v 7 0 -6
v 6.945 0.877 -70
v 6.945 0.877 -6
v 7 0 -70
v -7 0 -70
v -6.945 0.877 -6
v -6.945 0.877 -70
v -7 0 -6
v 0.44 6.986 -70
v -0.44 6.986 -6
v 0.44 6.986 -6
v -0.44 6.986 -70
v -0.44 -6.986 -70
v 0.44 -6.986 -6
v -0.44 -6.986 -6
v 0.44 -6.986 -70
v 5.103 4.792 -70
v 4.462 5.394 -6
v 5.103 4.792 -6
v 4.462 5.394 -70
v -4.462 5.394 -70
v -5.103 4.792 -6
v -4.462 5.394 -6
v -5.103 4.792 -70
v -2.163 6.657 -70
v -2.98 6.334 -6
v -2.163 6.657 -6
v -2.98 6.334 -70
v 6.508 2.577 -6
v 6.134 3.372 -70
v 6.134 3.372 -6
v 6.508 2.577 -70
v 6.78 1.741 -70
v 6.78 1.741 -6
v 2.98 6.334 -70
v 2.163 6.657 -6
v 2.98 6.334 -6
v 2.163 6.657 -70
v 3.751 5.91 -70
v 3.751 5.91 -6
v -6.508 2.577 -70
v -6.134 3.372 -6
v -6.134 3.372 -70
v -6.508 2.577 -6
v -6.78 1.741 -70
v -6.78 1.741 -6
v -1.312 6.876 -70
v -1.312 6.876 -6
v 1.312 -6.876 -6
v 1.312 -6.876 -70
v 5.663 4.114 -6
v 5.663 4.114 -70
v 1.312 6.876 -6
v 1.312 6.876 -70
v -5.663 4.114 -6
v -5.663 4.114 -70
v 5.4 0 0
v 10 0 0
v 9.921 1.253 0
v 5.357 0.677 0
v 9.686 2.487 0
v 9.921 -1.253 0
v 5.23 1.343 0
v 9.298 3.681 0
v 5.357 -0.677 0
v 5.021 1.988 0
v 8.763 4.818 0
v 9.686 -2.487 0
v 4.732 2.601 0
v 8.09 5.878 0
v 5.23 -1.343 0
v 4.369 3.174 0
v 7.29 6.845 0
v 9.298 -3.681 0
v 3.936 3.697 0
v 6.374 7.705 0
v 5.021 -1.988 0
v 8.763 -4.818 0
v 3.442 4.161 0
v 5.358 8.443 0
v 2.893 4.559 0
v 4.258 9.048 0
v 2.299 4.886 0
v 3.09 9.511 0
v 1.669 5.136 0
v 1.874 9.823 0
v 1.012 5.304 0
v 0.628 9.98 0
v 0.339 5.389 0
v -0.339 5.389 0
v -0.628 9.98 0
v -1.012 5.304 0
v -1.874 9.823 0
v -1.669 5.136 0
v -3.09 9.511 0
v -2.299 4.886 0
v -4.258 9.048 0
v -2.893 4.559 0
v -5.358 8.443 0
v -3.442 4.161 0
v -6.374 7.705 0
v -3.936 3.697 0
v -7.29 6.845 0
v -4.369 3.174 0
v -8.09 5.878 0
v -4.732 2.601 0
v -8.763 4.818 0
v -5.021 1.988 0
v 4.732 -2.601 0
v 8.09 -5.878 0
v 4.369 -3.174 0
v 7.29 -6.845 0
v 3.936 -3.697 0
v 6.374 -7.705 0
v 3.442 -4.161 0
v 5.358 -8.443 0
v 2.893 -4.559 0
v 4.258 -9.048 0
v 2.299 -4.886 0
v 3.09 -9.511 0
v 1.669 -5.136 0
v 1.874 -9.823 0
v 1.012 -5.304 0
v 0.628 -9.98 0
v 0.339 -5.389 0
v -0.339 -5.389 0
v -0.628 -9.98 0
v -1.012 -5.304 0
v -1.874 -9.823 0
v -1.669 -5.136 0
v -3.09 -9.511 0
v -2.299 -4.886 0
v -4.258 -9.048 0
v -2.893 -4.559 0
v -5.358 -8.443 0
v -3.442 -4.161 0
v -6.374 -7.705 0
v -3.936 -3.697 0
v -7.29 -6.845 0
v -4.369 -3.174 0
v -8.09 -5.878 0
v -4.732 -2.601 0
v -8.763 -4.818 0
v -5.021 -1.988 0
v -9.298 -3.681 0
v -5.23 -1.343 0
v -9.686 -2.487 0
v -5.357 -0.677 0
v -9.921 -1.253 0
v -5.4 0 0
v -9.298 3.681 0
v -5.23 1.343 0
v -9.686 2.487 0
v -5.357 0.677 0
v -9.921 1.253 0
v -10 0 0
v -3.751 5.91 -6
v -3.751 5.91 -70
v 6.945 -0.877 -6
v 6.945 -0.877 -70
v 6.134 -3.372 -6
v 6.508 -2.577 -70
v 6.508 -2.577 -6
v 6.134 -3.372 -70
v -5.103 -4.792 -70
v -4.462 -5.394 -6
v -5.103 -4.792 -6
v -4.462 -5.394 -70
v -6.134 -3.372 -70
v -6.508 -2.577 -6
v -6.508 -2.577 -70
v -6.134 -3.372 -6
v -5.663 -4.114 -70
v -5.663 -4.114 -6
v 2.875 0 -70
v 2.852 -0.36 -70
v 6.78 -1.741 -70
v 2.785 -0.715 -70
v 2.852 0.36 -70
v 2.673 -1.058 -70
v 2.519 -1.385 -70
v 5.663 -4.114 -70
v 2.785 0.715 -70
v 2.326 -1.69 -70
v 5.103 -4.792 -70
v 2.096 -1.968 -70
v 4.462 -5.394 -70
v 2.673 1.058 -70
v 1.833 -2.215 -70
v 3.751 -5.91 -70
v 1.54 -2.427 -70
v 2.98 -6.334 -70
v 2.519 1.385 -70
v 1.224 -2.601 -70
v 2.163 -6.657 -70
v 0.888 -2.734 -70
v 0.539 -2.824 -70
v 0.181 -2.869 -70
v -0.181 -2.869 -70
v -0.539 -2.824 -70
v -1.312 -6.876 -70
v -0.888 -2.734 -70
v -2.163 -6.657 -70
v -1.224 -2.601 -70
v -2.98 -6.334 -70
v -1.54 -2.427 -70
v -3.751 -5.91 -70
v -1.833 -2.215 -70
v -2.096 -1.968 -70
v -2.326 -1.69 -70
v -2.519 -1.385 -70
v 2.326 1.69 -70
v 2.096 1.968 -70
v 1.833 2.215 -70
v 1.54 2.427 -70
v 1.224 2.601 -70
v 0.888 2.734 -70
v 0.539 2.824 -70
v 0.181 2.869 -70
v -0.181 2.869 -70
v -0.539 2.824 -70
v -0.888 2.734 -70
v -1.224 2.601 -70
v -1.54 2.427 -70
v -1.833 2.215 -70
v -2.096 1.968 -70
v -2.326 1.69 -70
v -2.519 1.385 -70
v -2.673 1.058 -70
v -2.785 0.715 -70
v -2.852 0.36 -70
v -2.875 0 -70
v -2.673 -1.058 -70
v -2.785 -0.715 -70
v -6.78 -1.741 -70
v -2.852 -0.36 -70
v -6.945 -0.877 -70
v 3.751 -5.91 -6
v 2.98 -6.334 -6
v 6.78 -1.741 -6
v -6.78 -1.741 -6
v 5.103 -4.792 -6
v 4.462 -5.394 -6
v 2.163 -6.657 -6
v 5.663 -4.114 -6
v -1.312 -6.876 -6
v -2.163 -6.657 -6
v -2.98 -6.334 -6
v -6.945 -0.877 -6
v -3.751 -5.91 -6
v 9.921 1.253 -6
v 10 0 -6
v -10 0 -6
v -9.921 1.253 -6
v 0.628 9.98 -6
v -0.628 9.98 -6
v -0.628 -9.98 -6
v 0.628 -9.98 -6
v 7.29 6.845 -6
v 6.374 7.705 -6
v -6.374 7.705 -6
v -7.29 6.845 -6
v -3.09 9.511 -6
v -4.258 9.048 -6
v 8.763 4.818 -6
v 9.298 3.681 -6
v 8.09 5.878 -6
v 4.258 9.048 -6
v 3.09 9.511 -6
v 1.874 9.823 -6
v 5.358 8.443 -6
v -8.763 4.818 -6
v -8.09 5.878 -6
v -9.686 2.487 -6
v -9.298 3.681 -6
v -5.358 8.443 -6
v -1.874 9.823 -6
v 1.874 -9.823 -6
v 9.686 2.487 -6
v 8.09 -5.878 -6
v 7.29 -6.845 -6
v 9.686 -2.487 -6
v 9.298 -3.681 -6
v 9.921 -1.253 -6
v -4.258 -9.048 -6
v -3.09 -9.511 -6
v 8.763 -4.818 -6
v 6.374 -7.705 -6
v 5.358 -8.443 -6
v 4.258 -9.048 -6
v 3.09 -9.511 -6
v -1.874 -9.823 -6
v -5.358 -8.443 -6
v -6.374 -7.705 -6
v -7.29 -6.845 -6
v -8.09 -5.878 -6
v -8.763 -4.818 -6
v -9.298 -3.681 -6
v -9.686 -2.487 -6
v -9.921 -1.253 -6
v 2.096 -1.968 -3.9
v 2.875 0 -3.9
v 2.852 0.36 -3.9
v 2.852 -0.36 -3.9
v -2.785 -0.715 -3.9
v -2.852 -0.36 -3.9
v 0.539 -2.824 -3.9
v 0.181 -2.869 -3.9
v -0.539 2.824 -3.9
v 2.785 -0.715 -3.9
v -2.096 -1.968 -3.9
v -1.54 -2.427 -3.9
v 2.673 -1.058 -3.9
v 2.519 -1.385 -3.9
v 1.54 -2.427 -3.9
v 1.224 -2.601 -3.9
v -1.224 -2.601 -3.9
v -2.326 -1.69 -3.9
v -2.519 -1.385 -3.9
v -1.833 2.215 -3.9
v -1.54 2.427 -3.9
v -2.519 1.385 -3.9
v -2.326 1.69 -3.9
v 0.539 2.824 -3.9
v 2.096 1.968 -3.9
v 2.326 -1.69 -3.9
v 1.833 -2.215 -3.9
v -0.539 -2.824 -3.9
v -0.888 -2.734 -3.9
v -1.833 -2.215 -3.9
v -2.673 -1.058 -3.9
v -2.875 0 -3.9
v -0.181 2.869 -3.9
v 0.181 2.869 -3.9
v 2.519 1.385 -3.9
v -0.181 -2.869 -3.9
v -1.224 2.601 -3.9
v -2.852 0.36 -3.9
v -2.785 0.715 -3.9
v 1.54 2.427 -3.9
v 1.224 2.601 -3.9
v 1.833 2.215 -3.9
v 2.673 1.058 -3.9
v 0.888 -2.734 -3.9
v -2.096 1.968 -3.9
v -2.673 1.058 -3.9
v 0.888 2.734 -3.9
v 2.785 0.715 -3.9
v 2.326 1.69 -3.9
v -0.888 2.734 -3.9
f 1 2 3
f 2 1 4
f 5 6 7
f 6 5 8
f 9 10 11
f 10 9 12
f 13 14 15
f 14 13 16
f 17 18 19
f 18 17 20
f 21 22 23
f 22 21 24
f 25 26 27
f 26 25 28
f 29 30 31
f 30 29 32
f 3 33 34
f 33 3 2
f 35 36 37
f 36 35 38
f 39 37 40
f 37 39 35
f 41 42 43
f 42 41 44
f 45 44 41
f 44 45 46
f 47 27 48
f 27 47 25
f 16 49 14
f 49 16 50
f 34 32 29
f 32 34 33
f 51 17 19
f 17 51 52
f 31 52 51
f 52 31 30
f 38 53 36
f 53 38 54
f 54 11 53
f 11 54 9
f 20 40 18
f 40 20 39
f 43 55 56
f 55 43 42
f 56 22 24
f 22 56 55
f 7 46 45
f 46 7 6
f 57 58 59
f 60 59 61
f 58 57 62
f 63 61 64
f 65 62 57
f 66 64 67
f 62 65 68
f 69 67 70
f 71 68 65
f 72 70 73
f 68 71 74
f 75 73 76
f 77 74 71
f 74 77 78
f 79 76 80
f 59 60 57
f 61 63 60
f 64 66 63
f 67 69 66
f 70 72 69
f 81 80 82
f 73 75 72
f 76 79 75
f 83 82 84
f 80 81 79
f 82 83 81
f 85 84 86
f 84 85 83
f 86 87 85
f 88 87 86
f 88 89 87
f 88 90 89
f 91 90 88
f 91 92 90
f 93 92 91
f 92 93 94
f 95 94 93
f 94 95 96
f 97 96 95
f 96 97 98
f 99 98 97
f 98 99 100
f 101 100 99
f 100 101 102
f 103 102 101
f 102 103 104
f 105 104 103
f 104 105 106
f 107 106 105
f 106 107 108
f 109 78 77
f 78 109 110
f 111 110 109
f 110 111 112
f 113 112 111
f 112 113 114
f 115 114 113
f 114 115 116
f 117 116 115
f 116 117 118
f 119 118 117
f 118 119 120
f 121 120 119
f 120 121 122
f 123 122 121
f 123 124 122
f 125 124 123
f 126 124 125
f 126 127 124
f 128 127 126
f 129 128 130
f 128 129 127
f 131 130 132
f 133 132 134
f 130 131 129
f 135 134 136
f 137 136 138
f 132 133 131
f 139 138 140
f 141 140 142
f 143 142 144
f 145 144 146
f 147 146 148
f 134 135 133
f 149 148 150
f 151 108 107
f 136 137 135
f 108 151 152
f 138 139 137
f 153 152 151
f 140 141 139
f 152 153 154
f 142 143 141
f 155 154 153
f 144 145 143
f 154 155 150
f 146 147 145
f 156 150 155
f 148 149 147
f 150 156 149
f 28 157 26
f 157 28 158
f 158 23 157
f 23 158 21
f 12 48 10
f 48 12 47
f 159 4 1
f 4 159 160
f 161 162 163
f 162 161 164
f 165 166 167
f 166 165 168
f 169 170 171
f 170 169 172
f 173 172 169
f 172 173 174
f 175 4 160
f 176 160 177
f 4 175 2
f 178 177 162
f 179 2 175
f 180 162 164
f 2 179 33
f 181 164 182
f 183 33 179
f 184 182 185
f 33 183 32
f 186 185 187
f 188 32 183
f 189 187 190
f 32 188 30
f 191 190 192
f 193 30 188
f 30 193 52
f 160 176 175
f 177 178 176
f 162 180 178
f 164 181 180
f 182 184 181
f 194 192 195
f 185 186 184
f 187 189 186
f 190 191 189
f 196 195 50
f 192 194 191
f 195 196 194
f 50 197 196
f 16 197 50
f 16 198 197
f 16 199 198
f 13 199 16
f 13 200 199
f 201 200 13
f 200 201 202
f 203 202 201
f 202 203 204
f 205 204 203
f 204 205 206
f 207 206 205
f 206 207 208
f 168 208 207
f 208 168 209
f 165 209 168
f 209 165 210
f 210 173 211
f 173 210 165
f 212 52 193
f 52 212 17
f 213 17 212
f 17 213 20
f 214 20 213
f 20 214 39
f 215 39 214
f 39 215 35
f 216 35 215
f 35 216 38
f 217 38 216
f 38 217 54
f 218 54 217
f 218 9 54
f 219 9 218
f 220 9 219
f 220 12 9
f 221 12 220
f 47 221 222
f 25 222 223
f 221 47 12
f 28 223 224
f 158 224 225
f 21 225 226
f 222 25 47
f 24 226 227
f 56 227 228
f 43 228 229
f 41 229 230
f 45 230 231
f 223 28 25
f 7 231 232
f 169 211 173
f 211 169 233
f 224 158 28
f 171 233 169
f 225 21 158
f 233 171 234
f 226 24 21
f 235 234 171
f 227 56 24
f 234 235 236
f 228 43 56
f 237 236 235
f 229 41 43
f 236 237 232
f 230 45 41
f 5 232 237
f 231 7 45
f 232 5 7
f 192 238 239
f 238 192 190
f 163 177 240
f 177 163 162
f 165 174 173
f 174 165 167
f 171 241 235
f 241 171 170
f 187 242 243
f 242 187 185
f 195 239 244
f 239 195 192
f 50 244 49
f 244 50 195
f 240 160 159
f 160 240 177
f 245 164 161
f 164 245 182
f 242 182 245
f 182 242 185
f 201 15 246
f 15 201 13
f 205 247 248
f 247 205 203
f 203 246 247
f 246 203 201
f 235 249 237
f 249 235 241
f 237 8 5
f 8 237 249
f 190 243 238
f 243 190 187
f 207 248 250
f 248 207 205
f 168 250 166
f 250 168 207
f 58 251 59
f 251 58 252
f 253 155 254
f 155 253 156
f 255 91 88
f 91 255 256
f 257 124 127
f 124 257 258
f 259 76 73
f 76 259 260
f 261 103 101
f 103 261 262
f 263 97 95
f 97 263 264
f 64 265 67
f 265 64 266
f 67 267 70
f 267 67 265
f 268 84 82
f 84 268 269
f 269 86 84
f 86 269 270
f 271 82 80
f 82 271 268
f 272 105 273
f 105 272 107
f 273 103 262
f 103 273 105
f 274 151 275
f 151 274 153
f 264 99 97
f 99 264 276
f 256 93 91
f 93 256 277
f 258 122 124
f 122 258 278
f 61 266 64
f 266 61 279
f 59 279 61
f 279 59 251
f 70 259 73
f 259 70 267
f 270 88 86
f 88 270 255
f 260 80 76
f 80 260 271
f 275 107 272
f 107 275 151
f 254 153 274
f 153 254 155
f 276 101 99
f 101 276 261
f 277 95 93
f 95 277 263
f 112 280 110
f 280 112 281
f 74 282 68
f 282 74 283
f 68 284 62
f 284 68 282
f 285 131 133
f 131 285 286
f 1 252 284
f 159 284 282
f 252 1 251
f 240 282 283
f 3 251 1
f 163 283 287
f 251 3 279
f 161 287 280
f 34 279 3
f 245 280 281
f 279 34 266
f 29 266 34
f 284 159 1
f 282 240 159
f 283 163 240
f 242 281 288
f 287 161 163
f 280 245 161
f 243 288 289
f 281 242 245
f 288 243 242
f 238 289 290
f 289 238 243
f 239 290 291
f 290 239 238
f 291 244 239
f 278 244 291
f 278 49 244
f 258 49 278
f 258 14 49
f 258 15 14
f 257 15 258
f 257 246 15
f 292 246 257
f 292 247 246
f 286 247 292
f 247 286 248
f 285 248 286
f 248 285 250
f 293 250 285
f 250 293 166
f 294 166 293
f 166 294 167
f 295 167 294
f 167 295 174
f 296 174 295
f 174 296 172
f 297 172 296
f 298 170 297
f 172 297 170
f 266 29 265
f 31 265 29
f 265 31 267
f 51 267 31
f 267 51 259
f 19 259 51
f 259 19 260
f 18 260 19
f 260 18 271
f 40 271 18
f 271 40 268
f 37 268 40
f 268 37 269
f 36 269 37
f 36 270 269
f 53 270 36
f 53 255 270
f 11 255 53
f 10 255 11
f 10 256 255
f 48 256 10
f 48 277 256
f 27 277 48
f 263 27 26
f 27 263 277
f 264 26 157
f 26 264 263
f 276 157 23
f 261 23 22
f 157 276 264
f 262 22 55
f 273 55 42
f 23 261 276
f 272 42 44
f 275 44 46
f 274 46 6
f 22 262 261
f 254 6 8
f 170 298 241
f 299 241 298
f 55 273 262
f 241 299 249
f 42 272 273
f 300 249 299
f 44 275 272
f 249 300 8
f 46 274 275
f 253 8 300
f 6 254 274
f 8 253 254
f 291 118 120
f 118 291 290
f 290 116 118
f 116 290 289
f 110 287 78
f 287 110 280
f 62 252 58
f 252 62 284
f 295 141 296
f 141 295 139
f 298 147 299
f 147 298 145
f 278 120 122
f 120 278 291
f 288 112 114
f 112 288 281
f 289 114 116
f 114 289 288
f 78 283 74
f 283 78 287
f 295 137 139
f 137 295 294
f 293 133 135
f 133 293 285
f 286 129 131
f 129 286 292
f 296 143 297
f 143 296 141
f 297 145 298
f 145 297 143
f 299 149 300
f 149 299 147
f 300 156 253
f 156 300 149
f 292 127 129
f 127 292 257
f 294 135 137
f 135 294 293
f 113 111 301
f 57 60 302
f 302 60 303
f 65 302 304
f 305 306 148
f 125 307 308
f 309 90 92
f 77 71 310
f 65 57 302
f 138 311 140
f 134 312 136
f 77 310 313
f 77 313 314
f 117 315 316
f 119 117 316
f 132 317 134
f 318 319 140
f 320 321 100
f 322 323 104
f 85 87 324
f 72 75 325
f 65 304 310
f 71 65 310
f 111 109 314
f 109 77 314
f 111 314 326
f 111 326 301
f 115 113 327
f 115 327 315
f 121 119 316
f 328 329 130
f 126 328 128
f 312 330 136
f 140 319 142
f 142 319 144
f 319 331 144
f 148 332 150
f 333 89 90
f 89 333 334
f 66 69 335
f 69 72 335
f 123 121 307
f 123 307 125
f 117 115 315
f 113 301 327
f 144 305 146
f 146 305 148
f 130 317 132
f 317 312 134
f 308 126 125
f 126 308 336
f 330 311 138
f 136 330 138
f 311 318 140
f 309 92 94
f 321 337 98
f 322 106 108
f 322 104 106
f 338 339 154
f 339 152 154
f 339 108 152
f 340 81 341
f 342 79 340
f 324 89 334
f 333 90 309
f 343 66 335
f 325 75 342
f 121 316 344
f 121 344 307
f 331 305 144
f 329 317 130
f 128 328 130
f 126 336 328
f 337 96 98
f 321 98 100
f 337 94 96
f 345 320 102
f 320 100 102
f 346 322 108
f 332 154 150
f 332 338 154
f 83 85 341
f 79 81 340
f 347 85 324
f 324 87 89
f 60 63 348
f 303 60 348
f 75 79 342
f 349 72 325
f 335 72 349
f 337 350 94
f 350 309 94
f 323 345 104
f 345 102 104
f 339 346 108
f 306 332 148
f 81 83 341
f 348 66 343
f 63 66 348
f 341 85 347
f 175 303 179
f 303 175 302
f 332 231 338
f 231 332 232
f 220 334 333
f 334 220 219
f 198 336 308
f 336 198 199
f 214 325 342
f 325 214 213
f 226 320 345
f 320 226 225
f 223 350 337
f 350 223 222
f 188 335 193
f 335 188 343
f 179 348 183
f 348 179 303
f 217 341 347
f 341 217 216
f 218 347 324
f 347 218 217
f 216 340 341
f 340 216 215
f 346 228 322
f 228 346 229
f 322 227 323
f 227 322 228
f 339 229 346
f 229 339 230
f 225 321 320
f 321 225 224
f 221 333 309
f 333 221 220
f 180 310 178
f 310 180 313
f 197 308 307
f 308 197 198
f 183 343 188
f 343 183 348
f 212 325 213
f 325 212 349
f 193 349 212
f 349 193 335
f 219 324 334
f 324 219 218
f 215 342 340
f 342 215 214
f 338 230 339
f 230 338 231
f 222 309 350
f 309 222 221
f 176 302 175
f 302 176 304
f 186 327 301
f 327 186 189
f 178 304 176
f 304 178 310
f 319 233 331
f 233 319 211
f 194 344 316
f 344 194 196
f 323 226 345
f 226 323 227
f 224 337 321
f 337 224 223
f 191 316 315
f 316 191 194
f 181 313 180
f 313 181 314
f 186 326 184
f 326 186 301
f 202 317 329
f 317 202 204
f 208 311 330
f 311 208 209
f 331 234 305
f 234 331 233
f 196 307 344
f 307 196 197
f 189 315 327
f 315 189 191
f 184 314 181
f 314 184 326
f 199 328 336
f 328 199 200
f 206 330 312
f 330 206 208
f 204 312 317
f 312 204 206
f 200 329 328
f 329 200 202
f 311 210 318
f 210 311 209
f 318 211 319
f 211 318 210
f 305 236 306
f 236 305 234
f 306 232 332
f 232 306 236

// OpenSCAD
$fn = 50;


difference() {
	union() {
		translate(v = [0, 0, -70.0000000000]) {
			cylinder(h = 70, r = 7.0000000000);
		}
		translate(v = [0, 0, -6.0000000000]) {
			cylinder(h = 6, r = 10.0000000000);
		}
	}
	union() {
		translate(v = [0, 0, 0]) {
			rotate(a = [0, 0, 0]) {
				difference() {
					union() {
						#translate(v = [0, 0, -70.0000000000]) {
							cylinder(h = 70, r = 2.6000000000);
						}
						#translate(v = [0, 0, -3.9000000000]) {
							cylinder(h = 3.9000000000, r1 = 2.8750000000, r2 = 5.4000000000);
						}
						#translate(v = [0, 0, -70.0000000000]) {
							cylinder(h = 70, r = 2.8750000000);
						}
						#translate(v = [0, 0, -70.0000000000]) {
							cylinder(h = 70, r = 2.6000000000);
						}
					}
					union();
				}
			}
		}
	}
}
